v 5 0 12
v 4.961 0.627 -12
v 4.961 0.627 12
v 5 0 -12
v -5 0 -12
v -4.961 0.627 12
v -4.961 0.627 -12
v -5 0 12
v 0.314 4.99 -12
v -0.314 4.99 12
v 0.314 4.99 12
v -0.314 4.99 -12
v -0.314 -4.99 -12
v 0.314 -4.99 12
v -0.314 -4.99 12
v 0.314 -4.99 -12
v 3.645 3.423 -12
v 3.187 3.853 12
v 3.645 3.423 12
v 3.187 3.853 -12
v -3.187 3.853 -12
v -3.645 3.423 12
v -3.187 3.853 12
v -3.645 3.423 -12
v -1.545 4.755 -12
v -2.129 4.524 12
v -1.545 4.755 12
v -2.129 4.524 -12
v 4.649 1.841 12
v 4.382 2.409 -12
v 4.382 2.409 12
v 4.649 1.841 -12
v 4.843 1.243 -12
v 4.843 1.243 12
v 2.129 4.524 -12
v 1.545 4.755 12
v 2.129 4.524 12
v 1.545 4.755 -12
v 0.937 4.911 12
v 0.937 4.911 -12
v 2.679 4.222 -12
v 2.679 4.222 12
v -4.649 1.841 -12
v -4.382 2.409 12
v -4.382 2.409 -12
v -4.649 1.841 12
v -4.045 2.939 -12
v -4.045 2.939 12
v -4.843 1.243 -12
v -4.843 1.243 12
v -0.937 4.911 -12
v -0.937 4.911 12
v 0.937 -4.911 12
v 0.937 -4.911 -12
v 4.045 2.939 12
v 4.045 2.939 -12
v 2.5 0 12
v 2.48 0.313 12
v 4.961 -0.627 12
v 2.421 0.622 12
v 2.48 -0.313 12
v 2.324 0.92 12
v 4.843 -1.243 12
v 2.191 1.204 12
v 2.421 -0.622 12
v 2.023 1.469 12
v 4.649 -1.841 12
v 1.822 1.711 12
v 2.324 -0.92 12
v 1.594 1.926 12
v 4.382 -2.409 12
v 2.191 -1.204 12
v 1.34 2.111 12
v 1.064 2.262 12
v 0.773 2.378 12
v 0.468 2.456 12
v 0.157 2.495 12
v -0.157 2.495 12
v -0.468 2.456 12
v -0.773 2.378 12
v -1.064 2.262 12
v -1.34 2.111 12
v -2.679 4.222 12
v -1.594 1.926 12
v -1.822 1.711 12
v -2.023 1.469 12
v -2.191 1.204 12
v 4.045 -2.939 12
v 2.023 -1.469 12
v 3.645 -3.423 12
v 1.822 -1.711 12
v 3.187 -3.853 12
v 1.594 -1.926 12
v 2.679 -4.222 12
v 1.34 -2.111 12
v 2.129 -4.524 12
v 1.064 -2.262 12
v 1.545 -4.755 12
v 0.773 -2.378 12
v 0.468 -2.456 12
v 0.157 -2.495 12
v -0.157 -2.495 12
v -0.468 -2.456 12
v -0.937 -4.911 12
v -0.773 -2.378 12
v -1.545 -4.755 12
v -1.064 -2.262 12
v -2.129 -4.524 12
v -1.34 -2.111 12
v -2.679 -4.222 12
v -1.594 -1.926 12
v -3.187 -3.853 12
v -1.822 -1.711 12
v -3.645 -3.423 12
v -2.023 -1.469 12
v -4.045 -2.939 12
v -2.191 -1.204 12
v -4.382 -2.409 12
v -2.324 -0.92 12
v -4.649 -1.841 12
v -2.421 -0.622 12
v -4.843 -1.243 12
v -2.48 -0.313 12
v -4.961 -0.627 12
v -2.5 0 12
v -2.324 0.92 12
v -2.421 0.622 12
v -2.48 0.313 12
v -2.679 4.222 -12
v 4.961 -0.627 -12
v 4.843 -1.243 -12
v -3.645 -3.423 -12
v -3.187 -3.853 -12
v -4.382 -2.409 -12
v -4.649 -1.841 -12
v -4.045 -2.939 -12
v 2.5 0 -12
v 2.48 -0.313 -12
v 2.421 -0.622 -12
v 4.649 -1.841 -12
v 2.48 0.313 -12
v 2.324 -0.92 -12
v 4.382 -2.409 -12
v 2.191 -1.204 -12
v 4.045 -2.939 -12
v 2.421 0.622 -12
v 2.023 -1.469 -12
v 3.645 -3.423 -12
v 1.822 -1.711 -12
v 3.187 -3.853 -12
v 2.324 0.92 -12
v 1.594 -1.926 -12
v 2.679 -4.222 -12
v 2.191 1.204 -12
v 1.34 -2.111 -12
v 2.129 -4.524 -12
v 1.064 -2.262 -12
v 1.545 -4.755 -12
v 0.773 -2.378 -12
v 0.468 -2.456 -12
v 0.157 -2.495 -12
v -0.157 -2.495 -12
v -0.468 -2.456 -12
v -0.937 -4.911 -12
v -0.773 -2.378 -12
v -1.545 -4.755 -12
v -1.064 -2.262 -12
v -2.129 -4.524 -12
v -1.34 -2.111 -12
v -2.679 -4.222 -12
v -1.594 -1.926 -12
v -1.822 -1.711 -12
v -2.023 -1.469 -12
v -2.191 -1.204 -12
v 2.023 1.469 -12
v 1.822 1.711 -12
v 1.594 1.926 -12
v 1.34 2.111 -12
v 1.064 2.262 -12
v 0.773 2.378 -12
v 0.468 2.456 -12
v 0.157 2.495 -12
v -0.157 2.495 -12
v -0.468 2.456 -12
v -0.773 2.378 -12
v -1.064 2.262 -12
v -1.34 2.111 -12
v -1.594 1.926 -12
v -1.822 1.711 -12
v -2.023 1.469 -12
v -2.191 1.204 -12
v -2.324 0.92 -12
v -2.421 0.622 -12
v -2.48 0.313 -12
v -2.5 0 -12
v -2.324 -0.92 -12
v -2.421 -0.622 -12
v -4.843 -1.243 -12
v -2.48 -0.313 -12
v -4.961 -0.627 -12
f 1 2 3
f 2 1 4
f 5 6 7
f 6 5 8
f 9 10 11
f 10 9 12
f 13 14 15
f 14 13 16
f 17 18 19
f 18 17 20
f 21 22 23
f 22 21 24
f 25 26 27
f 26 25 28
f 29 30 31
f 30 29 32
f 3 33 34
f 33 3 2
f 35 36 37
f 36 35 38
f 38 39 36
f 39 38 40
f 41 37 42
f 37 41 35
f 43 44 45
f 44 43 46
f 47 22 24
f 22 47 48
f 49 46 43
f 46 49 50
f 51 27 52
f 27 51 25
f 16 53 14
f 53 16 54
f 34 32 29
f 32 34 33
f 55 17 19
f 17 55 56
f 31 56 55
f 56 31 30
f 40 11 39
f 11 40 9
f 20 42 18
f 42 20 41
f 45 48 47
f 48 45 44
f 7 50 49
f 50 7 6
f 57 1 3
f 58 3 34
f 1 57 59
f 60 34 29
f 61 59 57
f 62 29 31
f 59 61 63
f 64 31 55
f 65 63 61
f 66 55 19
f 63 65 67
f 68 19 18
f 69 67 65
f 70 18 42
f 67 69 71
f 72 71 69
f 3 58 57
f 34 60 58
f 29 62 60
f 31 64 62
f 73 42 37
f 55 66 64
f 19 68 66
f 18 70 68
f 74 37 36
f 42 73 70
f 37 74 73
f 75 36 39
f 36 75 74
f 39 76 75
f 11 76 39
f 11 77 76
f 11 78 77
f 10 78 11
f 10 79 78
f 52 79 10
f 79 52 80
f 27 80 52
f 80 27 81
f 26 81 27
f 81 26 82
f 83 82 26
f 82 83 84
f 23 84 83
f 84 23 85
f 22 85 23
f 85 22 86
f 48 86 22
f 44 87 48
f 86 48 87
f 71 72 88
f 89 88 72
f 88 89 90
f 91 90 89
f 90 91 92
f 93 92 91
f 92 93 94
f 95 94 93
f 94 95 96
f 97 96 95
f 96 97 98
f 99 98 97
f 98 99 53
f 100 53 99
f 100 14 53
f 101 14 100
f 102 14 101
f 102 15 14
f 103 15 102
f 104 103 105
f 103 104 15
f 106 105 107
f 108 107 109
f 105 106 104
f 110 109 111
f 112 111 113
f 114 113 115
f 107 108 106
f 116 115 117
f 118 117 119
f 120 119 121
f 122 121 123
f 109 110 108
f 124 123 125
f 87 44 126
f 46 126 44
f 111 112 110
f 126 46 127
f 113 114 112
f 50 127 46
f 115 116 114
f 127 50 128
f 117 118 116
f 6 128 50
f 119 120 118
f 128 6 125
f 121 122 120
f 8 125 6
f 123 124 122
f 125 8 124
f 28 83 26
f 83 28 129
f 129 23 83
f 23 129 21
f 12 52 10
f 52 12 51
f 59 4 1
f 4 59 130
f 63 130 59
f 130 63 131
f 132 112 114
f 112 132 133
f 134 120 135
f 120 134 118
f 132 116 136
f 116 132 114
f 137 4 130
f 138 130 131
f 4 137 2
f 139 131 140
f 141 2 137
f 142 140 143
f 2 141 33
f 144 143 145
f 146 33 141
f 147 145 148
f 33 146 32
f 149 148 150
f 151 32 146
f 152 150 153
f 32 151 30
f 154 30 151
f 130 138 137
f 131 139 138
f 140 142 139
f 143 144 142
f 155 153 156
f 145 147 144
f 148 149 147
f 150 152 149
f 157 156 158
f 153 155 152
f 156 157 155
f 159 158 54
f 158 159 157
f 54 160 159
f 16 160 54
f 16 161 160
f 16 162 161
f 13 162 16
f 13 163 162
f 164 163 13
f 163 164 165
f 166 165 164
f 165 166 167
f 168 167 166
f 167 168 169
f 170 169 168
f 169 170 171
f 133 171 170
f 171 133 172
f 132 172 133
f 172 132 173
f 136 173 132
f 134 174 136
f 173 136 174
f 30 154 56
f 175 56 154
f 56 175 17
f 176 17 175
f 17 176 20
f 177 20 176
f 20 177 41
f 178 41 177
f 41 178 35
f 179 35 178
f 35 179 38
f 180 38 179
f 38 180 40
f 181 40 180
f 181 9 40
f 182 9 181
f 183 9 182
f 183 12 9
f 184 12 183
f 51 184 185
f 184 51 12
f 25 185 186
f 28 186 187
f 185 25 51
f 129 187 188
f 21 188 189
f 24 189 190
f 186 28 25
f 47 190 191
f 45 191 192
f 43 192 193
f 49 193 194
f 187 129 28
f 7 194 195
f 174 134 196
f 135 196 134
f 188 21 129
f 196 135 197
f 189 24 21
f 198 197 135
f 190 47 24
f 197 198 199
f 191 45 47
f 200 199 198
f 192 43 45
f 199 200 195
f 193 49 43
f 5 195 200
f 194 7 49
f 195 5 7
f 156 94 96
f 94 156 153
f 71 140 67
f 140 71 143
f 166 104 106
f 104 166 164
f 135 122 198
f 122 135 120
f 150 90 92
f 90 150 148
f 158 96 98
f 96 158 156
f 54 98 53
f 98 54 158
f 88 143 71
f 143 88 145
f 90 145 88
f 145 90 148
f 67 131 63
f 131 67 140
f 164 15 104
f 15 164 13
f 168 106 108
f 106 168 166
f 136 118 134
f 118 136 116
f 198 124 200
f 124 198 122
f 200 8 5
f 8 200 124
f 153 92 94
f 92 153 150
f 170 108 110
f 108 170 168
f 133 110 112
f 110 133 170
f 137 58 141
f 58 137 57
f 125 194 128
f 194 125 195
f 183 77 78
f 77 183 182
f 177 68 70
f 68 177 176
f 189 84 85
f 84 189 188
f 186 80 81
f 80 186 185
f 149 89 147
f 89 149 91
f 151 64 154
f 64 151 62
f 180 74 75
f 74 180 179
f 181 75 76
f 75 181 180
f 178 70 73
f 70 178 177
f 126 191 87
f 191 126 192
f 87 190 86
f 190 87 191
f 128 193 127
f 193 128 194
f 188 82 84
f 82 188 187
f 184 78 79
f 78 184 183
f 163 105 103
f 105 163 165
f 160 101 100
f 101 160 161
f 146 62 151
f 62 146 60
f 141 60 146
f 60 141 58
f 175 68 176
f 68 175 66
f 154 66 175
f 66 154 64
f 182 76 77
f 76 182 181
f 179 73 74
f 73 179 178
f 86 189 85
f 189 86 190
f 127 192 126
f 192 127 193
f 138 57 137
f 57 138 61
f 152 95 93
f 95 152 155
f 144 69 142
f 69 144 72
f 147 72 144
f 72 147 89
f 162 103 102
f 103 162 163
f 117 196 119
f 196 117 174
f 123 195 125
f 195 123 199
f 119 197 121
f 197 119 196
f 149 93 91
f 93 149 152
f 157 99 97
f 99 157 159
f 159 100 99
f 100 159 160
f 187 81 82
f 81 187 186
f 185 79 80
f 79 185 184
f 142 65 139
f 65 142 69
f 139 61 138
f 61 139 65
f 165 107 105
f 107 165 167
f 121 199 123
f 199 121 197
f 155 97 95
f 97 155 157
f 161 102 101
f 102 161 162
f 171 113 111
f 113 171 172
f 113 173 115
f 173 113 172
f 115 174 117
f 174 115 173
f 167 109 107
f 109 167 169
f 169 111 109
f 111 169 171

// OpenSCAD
$fn = 50;


difference() {
	union() {
		translate(v = [0, 0, -12.0000000000]) {
			cylinder(h = 24, r = 5.0000000000);
		}
	}
	union() {
		translate(v = [0, 0, -100.0000000000]) {
			cylinder(h = 200, r = 2.5000000000);
		}
	}
}
